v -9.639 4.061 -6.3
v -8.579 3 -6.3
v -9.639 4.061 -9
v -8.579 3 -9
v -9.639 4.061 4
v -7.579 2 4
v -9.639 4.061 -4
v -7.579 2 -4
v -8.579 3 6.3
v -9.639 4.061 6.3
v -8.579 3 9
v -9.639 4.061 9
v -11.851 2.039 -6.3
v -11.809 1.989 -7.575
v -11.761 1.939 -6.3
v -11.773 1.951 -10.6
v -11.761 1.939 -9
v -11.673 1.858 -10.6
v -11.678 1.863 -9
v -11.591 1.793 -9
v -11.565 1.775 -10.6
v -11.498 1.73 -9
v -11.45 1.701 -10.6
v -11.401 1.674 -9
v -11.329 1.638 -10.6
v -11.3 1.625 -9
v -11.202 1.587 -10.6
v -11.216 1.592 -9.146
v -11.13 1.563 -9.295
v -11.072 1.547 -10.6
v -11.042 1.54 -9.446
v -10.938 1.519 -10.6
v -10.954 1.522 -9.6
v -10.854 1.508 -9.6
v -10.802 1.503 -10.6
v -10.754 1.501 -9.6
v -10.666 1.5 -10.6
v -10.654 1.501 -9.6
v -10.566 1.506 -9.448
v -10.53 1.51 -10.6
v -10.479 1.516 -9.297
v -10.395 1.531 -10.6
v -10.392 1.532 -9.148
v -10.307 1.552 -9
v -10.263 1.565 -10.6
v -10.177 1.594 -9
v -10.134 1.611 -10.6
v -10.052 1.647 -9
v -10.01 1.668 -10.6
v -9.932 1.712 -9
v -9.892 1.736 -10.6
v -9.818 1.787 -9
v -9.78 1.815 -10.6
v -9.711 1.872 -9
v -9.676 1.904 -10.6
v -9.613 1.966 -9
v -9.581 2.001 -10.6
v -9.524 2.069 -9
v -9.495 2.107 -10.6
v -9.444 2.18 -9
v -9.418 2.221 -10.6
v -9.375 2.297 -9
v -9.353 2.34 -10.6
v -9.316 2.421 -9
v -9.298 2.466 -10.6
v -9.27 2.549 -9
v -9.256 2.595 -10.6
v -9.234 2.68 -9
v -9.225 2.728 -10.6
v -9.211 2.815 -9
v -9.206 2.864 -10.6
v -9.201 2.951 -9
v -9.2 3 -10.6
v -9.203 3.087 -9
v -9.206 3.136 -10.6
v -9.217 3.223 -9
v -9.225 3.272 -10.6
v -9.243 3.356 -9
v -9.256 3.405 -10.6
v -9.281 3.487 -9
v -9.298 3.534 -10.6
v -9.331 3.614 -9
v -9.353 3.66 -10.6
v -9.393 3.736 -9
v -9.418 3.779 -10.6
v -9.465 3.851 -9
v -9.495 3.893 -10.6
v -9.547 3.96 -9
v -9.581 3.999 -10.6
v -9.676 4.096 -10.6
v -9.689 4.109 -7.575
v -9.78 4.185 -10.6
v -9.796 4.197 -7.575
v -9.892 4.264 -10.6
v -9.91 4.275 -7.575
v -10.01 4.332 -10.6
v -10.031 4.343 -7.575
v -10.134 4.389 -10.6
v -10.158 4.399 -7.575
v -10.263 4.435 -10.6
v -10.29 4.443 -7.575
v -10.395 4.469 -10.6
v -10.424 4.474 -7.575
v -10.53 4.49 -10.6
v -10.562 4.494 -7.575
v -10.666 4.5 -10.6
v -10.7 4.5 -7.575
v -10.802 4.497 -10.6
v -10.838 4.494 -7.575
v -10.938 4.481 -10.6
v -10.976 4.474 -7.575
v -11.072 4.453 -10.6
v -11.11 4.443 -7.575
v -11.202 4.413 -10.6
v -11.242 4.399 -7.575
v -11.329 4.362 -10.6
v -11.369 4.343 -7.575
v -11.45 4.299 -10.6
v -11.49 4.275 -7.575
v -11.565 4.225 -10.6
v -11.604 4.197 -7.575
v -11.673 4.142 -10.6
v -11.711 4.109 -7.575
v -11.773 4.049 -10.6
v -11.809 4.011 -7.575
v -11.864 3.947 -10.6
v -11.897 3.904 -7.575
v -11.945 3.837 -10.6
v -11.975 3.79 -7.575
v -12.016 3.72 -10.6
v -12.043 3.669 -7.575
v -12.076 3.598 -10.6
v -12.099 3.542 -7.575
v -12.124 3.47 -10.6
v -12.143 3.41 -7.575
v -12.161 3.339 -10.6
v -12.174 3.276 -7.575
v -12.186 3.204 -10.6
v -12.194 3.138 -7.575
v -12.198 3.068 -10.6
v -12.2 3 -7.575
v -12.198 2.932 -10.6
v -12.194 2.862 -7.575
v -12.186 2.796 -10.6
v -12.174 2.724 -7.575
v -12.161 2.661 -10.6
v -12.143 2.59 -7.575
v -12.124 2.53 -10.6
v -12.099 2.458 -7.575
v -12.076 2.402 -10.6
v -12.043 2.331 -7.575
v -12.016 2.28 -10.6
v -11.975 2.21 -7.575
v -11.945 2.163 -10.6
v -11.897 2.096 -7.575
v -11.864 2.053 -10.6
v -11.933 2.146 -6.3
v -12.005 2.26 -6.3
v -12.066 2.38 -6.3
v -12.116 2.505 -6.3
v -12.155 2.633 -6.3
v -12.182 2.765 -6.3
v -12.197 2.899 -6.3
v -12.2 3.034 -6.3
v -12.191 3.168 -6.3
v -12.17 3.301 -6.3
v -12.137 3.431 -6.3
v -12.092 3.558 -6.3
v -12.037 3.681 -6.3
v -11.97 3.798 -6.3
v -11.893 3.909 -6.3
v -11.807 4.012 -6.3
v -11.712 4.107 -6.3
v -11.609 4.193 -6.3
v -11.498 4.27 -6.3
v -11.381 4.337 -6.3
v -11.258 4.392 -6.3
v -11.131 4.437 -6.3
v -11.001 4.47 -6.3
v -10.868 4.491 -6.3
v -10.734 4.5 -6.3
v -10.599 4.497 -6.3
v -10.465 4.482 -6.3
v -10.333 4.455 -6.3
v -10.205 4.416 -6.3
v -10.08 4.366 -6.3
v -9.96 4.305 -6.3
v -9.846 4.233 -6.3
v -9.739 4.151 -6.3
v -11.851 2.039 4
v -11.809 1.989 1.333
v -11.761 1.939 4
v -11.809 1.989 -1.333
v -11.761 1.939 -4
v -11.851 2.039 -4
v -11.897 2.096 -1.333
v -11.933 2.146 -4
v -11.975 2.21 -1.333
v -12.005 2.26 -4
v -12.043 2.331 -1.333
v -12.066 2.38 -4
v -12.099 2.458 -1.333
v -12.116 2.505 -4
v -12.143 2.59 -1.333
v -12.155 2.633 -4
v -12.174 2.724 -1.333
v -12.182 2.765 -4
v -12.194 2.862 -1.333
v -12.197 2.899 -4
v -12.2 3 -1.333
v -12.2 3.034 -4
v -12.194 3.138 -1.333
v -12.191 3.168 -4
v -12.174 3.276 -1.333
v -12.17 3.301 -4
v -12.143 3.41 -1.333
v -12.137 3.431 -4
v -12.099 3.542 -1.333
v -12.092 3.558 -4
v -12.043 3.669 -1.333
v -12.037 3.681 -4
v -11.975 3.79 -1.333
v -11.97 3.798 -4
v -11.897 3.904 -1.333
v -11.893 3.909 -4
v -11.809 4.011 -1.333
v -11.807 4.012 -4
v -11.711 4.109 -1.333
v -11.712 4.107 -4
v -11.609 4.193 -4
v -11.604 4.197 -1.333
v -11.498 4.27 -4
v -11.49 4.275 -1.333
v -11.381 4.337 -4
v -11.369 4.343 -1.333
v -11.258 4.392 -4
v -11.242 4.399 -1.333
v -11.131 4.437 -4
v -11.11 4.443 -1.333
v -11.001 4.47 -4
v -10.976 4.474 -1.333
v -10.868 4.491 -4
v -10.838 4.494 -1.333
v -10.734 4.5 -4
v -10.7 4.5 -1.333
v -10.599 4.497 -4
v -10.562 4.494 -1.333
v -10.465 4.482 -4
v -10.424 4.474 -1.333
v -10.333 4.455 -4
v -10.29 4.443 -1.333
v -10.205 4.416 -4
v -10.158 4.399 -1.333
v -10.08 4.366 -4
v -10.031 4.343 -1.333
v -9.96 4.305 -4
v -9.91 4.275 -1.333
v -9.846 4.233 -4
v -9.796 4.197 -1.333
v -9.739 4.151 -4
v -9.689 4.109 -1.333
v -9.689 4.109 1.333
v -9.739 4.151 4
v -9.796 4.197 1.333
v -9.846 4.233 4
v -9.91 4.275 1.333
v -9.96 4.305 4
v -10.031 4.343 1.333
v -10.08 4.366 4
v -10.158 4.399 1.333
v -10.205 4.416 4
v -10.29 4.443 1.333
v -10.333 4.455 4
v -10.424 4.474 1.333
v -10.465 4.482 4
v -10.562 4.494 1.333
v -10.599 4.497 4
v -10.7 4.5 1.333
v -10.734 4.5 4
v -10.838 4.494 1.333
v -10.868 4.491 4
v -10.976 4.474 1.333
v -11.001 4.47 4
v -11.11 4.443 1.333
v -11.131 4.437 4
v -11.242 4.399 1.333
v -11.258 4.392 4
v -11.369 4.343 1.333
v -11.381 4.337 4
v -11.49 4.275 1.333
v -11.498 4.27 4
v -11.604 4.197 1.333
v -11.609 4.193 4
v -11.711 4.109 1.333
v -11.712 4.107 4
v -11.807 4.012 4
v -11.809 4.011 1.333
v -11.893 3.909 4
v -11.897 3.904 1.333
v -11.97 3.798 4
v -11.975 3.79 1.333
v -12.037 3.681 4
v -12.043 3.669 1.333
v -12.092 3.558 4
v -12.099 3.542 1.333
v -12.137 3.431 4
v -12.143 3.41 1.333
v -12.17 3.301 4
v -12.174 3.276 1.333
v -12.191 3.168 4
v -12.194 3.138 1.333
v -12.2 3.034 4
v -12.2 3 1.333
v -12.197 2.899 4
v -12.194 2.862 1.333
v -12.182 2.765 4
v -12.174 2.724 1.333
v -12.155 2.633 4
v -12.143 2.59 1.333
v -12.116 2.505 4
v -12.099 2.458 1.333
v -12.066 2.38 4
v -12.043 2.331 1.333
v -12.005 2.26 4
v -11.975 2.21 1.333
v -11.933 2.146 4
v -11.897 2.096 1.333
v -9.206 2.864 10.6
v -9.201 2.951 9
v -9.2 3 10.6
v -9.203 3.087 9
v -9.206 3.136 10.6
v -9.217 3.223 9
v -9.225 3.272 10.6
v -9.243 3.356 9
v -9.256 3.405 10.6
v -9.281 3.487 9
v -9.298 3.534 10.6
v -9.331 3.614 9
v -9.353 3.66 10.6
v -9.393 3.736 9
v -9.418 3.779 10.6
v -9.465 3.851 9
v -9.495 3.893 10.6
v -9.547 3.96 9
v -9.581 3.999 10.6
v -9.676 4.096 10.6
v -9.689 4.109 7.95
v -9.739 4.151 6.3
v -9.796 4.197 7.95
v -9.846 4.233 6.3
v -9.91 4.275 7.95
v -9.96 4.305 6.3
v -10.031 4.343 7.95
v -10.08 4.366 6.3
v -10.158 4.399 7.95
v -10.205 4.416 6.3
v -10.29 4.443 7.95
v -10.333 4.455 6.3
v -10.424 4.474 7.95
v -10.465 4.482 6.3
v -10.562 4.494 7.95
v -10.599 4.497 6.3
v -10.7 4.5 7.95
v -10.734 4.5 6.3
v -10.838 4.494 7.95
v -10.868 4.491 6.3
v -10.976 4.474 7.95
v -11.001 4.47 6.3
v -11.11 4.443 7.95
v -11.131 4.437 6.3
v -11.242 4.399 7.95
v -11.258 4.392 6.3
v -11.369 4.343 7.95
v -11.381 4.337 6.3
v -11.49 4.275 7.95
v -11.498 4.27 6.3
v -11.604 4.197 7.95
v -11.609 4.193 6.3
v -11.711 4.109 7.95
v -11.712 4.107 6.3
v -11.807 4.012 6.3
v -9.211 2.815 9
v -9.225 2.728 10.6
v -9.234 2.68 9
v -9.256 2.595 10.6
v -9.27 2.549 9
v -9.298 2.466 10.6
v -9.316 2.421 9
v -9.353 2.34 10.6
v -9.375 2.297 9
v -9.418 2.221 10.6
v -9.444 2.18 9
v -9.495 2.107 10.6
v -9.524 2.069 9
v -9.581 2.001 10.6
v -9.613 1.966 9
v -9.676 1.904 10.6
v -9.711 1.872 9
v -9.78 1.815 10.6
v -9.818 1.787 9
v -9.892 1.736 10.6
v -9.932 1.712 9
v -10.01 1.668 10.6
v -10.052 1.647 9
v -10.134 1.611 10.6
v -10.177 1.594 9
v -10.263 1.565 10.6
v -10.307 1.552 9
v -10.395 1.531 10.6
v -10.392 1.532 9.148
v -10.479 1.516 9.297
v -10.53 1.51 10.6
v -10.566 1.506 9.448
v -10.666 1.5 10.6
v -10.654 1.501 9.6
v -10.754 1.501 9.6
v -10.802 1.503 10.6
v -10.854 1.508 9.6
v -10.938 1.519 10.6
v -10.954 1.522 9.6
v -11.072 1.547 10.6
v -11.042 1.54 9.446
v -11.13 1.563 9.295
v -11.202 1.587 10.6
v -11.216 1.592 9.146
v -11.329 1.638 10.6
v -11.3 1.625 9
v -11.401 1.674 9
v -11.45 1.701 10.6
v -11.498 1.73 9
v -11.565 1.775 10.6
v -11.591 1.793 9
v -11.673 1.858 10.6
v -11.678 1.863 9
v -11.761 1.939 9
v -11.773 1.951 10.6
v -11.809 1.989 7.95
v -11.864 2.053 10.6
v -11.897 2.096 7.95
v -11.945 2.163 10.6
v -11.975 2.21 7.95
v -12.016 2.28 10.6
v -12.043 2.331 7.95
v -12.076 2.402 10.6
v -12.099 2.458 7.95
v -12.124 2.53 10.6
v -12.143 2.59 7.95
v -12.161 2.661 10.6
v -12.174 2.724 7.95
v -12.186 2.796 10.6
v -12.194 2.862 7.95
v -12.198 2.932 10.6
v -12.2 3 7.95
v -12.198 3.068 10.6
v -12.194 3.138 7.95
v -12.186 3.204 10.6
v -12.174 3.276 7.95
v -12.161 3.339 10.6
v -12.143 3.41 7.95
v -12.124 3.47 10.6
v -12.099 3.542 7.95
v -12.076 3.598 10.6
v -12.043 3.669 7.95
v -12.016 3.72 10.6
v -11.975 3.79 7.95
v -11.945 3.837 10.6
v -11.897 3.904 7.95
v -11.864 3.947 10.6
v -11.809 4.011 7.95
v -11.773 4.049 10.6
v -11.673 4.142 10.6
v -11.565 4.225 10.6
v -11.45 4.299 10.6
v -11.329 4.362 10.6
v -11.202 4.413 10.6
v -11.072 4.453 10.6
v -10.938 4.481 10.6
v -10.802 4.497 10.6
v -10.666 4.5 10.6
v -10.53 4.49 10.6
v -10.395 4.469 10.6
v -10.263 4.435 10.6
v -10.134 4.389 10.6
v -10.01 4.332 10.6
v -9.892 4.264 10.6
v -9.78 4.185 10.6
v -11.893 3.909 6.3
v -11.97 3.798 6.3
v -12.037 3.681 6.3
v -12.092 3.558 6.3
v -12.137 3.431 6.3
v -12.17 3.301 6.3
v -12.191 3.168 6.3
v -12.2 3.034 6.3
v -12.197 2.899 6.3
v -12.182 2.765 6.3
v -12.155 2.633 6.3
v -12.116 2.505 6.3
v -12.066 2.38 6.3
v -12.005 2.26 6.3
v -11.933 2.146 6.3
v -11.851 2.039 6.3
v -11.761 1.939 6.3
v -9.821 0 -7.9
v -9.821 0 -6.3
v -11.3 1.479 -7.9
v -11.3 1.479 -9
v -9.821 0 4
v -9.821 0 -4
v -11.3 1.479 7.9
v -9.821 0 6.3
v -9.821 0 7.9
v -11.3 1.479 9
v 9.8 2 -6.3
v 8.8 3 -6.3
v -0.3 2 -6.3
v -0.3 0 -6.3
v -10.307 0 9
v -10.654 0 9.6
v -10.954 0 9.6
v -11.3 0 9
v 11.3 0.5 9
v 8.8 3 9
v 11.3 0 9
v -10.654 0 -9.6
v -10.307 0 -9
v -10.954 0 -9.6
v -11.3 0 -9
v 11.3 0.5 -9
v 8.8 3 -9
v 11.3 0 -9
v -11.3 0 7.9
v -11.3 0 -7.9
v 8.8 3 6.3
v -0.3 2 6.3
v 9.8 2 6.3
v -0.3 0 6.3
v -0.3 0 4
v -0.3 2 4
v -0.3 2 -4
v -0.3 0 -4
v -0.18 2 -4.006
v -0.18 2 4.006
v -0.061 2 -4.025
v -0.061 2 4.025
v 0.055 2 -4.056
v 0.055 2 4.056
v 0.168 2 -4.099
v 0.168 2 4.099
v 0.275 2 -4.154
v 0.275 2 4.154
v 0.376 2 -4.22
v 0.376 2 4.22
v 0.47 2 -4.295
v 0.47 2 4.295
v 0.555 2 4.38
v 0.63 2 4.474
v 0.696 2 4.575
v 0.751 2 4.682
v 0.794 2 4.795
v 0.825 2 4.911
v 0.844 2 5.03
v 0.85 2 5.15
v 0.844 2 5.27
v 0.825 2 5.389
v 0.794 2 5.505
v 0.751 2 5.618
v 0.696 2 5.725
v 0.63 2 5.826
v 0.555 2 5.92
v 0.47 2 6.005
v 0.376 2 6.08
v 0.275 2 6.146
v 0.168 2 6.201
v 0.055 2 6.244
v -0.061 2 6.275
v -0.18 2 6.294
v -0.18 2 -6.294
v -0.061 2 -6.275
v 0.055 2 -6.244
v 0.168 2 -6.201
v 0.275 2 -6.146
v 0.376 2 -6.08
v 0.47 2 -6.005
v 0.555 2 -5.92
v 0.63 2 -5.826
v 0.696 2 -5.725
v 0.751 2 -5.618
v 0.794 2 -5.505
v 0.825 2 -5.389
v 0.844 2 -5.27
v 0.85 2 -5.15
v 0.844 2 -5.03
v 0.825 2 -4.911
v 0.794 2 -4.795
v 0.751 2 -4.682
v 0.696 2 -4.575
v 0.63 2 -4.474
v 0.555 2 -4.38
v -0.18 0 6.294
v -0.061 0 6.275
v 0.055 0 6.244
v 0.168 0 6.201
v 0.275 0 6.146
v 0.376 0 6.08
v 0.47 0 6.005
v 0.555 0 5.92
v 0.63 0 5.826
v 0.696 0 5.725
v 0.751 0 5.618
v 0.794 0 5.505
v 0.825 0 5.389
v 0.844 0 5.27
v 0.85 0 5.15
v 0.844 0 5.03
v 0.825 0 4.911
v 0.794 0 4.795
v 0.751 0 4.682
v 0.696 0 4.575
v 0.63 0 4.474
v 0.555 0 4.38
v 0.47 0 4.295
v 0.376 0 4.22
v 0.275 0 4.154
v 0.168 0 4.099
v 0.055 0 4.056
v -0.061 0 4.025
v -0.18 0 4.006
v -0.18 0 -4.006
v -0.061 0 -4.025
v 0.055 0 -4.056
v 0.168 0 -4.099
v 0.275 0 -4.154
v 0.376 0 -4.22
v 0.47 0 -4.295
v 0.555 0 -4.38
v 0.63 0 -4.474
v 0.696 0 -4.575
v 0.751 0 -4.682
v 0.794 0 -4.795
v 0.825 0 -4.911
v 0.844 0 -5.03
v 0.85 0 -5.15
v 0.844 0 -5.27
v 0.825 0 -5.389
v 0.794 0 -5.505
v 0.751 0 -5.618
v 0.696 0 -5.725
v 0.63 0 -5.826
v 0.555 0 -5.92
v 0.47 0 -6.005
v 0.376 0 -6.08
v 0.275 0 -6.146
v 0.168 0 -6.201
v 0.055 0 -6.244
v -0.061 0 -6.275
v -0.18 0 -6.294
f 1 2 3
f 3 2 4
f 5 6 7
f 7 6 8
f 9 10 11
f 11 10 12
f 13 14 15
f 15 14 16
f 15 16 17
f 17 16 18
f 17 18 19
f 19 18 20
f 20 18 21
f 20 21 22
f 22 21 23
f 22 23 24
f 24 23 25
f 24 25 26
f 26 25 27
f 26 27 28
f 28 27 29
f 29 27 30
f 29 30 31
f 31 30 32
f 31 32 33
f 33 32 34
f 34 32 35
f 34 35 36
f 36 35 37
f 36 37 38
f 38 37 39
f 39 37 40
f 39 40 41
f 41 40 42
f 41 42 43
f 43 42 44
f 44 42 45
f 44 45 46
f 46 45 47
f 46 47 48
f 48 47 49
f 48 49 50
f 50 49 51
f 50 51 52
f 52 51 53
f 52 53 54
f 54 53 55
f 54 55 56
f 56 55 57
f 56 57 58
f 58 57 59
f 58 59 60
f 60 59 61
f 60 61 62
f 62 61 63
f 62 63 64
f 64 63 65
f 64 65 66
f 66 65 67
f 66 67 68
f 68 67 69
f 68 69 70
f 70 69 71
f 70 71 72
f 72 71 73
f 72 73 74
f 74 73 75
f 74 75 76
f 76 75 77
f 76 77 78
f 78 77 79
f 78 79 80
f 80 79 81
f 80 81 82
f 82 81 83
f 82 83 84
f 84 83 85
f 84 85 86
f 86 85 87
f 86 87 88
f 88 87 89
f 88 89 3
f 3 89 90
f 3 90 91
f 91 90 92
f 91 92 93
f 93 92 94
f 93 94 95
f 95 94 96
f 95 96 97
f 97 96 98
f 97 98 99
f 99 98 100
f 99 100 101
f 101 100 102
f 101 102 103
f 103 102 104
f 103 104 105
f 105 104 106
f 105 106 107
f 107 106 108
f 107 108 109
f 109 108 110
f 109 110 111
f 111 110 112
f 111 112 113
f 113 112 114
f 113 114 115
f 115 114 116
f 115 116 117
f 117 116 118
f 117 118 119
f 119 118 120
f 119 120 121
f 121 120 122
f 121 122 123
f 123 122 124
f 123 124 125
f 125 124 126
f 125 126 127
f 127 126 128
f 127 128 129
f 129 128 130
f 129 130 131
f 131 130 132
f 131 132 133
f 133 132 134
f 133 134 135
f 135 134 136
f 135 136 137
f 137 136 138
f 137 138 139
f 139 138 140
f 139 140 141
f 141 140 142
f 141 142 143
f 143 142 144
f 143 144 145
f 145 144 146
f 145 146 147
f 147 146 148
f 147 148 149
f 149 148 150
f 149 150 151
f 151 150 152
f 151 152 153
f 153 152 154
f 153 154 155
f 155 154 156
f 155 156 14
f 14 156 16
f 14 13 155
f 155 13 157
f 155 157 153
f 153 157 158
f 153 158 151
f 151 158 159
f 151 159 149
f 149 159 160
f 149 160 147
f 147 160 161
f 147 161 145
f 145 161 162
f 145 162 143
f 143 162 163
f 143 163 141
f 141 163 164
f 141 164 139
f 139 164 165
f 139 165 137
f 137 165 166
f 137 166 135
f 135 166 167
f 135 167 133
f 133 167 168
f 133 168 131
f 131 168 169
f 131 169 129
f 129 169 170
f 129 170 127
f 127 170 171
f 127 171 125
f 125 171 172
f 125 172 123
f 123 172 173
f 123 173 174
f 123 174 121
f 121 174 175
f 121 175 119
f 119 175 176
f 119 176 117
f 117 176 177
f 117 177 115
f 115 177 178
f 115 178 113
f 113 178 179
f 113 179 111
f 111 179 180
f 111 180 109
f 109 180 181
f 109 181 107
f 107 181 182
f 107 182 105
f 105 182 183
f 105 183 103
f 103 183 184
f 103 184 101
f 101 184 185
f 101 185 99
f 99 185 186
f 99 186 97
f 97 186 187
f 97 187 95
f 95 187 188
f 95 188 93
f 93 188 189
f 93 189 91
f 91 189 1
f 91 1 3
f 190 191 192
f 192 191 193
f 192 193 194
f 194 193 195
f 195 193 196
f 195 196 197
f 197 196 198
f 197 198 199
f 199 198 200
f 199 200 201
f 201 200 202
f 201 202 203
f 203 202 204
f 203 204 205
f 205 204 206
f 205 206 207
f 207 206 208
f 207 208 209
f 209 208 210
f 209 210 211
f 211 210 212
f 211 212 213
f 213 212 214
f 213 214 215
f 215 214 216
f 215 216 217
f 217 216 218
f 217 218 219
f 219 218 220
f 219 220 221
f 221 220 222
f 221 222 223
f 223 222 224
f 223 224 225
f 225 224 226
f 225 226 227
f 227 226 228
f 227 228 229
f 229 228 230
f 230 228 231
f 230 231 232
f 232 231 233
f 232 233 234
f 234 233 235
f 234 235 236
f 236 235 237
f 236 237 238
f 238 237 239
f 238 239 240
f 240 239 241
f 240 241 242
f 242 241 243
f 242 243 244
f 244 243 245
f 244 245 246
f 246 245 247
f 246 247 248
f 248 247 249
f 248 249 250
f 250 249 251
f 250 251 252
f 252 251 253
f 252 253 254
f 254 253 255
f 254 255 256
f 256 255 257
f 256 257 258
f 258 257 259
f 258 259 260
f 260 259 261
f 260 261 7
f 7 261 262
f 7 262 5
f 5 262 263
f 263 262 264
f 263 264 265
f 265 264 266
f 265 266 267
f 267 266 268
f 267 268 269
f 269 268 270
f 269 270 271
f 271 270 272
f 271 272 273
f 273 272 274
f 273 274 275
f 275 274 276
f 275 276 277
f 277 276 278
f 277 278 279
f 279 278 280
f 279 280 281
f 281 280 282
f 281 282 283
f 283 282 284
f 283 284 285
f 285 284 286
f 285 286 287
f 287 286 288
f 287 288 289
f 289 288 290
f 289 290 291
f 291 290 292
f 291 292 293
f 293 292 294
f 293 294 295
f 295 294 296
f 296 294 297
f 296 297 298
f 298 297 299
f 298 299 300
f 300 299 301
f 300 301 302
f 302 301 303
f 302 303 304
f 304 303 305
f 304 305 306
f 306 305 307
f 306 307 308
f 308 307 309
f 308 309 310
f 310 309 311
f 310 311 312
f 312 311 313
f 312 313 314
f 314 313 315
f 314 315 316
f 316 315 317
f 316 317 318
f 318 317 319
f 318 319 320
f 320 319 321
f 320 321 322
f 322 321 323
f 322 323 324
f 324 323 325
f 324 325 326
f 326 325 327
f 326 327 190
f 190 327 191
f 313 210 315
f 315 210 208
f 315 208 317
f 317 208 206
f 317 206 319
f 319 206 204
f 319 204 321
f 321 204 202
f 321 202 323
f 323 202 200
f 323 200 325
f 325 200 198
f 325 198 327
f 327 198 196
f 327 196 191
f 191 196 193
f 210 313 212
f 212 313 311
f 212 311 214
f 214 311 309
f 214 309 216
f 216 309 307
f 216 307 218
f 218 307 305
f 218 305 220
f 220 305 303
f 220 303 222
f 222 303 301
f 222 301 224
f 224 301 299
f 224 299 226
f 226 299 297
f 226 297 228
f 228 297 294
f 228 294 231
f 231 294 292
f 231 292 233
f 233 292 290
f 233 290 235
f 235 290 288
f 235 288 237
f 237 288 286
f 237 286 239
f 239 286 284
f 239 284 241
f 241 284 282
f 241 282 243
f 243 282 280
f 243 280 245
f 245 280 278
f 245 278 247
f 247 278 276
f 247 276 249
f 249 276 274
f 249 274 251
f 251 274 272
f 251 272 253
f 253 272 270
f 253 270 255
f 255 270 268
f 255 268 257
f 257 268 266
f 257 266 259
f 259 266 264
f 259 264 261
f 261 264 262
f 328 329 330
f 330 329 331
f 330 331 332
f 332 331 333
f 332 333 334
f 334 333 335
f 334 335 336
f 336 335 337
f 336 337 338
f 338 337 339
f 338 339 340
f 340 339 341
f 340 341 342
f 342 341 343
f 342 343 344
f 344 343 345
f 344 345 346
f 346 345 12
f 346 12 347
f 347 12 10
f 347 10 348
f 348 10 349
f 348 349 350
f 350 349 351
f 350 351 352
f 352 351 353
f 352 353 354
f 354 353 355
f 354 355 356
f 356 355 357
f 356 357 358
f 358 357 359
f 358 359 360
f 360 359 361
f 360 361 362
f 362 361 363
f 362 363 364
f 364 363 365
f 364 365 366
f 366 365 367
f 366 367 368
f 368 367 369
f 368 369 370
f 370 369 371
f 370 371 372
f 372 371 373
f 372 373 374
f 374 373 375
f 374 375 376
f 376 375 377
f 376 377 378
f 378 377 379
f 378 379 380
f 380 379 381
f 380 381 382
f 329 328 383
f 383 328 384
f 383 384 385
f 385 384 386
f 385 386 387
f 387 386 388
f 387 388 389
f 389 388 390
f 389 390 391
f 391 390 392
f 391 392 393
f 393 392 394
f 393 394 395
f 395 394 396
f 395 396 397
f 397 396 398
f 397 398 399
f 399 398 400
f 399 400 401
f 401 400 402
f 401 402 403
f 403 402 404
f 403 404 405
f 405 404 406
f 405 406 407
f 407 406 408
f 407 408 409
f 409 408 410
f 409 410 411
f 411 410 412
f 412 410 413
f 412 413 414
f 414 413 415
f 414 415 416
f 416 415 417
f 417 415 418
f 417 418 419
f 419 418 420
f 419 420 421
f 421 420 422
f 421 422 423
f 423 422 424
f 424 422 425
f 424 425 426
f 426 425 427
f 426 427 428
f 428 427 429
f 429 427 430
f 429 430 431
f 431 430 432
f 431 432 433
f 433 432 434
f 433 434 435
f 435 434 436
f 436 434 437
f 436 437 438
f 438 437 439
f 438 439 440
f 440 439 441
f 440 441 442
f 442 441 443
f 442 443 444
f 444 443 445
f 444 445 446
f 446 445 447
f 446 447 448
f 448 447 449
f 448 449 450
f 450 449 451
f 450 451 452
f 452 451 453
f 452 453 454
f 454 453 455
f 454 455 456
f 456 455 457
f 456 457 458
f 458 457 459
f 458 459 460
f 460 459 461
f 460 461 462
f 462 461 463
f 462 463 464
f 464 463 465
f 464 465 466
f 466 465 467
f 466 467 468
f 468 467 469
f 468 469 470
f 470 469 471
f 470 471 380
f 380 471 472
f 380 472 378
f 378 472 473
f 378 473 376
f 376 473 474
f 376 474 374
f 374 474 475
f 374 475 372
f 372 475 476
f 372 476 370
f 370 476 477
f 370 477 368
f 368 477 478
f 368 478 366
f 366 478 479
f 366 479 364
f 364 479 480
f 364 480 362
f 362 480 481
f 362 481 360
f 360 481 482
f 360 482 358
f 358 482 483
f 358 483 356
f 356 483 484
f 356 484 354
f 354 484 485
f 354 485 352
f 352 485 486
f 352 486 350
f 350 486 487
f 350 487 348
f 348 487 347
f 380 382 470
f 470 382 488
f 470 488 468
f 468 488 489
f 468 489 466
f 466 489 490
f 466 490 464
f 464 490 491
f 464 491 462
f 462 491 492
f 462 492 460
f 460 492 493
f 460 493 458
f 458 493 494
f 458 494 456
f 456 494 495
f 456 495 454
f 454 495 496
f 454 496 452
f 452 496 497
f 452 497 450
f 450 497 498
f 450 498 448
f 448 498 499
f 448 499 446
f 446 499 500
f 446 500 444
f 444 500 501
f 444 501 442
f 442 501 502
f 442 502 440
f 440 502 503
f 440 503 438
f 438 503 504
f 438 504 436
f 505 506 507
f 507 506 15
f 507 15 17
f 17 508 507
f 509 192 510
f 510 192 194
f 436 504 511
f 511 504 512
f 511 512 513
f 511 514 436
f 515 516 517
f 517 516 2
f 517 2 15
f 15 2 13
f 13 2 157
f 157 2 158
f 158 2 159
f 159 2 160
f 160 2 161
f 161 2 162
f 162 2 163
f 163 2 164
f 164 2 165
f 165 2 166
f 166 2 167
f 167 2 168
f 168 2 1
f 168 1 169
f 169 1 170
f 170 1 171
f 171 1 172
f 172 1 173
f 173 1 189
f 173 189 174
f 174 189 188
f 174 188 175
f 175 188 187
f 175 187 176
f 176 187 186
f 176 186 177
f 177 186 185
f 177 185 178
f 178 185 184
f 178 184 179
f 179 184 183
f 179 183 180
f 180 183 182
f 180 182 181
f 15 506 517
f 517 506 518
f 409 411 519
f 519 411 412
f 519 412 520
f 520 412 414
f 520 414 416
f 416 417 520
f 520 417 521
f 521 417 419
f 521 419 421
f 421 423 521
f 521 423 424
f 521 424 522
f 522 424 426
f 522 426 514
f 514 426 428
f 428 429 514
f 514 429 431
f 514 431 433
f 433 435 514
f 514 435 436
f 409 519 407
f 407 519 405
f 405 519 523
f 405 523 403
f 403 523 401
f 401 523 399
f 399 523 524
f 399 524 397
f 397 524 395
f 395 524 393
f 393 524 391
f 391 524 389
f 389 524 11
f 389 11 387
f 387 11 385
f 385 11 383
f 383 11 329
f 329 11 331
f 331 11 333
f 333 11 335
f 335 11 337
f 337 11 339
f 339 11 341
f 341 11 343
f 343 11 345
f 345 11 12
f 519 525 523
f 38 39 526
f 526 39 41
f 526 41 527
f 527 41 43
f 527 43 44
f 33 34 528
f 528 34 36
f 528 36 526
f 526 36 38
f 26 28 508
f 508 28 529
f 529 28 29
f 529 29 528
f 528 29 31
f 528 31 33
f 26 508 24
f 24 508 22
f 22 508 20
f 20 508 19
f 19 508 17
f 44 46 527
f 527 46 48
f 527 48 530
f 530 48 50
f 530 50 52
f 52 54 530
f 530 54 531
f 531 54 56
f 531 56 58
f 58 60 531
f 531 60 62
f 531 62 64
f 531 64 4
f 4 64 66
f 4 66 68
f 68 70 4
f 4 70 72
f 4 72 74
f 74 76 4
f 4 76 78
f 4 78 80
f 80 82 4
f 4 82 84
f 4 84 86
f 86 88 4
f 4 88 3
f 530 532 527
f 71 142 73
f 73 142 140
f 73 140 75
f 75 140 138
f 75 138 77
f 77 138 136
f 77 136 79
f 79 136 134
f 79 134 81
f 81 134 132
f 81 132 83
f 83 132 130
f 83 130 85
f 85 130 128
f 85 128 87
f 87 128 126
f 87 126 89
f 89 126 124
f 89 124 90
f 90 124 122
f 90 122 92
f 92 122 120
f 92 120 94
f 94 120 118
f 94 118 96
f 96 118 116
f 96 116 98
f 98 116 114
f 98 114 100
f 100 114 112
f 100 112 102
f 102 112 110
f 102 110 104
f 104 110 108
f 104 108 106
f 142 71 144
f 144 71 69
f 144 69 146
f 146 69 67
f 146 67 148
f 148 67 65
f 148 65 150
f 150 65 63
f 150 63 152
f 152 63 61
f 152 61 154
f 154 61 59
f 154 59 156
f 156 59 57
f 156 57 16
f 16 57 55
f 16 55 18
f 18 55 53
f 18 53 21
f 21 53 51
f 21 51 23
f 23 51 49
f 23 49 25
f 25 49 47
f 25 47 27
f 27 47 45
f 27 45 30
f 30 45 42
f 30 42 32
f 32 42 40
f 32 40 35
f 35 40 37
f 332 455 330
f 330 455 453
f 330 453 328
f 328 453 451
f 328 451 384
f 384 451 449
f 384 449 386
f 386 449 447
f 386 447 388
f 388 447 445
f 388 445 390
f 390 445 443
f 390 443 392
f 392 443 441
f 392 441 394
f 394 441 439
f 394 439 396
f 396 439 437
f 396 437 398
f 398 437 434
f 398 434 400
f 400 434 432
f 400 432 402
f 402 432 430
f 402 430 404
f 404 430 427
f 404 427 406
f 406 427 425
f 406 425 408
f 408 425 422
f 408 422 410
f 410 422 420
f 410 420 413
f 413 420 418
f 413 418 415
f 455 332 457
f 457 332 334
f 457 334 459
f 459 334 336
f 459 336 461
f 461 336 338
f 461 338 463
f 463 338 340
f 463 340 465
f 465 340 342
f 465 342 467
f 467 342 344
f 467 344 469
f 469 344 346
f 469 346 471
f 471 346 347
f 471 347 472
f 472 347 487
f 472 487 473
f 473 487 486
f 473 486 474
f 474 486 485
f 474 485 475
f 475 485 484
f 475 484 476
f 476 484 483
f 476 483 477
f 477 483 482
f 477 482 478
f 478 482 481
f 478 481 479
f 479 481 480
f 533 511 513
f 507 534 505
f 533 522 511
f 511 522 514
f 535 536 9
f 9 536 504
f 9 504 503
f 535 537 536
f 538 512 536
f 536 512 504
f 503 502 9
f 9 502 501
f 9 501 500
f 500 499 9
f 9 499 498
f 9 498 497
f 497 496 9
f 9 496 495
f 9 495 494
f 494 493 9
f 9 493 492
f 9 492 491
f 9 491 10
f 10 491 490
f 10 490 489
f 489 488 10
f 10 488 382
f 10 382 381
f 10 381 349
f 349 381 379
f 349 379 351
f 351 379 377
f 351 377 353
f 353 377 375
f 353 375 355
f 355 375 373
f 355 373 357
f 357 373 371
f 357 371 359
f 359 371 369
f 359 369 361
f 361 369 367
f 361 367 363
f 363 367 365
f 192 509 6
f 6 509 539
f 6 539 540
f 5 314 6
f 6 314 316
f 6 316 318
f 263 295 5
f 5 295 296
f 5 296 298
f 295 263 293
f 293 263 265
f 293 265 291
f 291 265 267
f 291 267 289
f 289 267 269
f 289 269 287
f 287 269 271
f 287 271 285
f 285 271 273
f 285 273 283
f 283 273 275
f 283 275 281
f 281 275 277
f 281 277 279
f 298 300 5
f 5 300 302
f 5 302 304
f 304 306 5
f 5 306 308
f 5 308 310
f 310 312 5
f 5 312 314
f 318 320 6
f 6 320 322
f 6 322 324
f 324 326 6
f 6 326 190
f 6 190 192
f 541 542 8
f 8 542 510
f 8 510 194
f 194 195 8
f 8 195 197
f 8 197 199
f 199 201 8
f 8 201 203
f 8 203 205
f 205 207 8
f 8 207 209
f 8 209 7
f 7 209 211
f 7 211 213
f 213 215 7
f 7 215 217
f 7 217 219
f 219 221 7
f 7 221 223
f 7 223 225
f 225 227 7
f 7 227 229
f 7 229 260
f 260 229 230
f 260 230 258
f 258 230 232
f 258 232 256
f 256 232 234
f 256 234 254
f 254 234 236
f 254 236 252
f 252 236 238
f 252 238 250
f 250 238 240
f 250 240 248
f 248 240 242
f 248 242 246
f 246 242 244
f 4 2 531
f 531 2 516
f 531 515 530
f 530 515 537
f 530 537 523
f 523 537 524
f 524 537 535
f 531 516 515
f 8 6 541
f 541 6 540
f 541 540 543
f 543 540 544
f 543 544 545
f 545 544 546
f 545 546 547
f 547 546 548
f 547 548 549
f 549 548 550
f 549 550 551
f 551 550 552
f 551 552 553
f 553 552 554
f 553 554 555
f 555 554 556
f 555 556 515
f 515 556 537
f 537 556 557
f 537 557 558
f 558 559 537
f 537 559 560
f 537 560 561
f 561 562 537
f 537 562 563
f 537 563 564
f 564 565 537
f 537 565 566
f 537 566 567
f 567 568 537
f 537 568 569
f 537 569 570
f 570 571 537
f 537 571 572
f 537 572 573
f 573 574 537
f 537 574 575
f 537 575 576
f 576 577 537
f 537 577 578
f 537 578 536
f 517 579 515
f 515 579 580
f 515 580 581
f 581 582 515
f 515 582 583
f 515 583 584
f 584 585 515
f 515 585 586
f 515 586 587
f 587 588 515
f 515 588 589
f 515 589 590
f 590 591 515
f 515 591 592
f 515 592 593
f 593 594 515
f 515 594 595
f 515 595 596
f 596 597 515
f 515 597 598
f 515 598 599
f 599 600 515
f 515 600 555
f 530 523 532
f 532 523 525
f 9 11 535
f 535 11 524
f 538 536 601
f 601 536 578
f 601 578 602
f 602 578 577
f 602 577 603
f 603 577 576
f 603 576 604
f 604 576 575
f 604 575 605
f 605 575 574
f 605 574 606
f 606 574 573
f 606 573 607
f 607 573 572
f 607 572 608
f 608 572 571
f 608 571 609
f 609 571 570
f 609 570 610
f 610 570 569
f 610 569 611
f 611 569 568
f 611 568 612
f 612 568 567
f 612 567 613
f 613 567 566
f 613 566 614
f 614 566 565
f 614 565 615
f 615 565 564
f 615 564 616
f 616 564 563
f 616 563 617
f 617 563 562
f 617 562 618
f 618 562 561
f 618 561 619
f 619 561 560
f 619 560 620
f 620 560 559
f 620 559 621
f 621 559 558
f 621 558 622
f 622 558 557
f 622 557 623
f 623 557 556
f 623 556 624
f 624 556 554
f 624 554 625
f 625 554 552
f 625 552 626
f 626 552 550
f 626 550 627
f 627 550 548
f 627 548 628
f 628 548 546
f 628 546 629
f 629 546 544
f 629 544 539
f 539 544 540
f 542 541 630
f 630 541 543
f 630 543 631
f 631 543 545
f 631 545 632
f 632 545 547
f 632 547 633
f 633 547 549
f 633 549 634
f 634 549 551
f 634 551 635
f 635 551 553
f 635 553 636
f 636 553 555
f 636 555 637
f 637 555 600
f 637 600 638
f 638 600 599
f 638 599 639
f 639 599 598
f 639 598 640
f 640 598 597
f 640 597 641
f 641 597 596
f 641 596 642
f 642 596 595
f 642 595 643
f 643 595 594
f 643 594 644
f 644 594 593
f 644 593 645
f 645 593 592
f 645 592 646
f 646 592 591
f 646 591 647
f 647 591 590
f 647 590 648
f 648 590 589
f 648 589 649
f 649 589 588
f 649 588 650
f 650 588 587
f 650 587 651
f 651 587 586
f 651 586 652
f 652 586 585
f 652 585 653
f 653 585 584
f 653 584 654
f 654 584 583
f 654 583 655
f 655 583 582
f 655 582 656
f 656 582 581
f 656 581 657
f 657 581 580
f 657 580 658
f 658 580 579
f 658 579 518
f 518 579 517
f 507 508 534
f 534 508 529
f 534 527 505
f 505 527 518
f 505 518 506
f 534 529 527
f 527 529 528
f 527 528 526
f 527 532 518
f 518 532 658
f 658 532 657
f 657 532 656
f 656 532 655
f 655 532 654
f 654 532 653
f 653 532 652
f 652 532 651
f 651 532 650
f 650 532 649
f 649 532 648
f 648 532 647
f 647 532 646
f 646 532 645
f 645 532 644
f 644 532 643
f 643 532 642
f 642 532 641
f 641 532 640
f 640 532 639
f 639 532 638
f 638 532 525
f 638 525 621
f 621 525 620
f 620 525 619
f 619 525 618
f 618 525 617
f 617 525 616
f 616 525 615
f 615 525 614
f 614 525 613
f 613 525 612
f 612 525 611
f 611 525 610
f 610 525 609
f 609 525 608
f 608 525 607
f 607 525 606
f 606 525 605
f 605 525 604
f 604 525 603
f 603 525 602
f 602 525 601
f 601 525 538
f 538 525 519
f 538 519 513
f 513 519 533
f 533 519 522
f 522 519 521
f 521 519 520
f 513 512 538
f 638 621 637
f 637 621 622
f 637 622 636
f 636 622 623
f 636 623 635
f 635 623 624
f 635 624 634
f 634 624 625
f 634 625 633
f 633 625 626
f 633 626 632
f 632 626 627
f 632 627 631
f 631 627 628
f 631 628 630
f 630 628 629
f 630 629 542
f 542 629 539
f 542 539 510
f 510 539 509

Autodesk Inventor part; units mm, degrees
ref_plane "YZ Plane" through (0, 0, 0) normal (1, 0, 0) x (0, 1, 0)
ref_plane "XZ Plane" through (0, 0, 0) normal (0, 1, 0) x (-1, 0, 0)
ref_plane "XY Plane" through (0, 0, 0) normal (0, 0, 1) x (1, 0, 0)
sketch "Sketch3" plane through (0, 0, 0) normal (0, 1, 0) x (-1, 0, 0)
  line L0 (11.3, 9) -> (-11.3, 9)
  line L1 (-11.3, 9) -> (-11.3, -9)
  line L2 (-11.3, -9) -> (11.3, -9)
  line L3 (11.3, -9) -> (11.3, 9)
  line L4 (11.3, 9) -> (-11.3, -9) construction
  line L5 (-11.3, 9) -> (11.3, -9) construction
  line L6 (11.3, 5.15) -> (0.3, 5.15) construction
  line L7 (11.3, 6.3) -> (0.3, 6.3)
  line L8 (0.3, 4) -> (11.3, 4)
  arc A0 (11.3, 4) -> (11.3, 6.3) centre (11.3, 5.15) ccw
  arc A1 (0.3, 6.3) -> (0.3, 4) centre (0.3, 5.15) ccw
  line L9 (11.3, -5.15) -> (0.3, -5.15) construction
  line L10 (11.3, -4) -> (0.3, -4)
  line L11 (0.3, -6.3) -> (11.3, -6.3)
  arc A2 (11.3, -6.3) -> (11.3, -4) centre (11.3, -5.15) ccw
  arc A3 (0.3, -4) -> (0.3, -6.3) centre (0.3, -5.15) ccw
  point P0 (0, 0)
  point P1 (5.8, 5.15)
  point P2 (5.8, -5.15)
  dimension "d4" = 18
  dimension "d5" = 22.6
  dimension "d6" = 11
  dimension "d7" = 11
  dimension "d8" = 2.3
  dimension "d9" = 2.3
  dimension "d10" = 12.6
  dimension "d11" = 6.3
extrude "Extrusion3" add sketch "Sketch3" along normal blind 3 contours L3 L7 A1 L8 L10 A3 L11 L2 L1 L0
sketch "Sketch4" plane through (-11.3, 0, -4) normal (-1, 0, 0) x (0, 0, 1)
  line L0 (-2.3, 3) -> (0, 3) projected
  line L1 (10.3, 0) -> (10.3, 3) projected
  line L2 (-2.3, 3) -> (10.3, 3)
  line L3 (10.3, 3) -> (10.3, 2)
  line L4 (10.3, 2) -> (-2.3, 2)
  line L5 (-2.3, 2) -> (-2.3, 3)
  point P0 (4, 0)
  dimension "d14" = 1
extrude "Extrusion4" cut sketch "Sketch4" against normal blind 30
chamfer "Chamfer1" distance 2.5 angle 45 1 edges at (11.3, 3, -7.65)
sketch "Sketch5" plane through (0, 0, 0) normal (0, 0, 1) x (1, 0, 0)
  circle A0 centre (-10.7, 3) radius 1.5
  line L0 (11.3, 0) -> (11.3, 0.5) projected
  line L1 (-11.7607, 1.9393) -> (-9.8213, 0)
  line L2 (-11.3, 0) -> (11.3, 0) projected
  line L3 (-9.6393, 4.0607) -> (-7.5787, 2)
  line L4 (-0.3, 2) -> (-11.3, 2) projected
  line L5 (-7.5787, 2) -> (-9.8213, 0)
  point P0 (0, 0)
  point P1 (-9.582, 2)
  dimension "d20" = 3
  dimension "d21" = 3
  dimension "d22" = 22
  dimension "d23" = 135
  dimension "d24" = 135
extrude "Extrusion5" add sketch "Sketch5" along normal mid plane 18
sketch "Sketch6" plane through (-11.7607, 1.9393, 9) normal (-0.7071, -0.7071, 0) x (-0.7071, 0.7071, 0)
  line L0 (6.2129, 16.9) -> (-25.5876, 16.9)
  line L1 (-25.5876, 16.9) -> (-25.5876, 1.1)
  line L2 (-25.5876, 1.1) -> (6.2129, 1.1)
  line L3 (6.2129, 1.1) -> (6.2129, 16.9)
  line L4 (6.2129, 16.9) -> (-25.5876, 1.1) construction
  line L5 (-25.5876, 16.9) -> (6.2129, 1.1) construction
  point P0 (-9.6874, 9)
  dimension "d27" = 15.8
extrude "Extrusion6" cut sketch "Sketch6" along normal blind 10
extrude "Extrusion7" add sketch "Sketch5" along normal mid plane 21.2 contours A0
sketch "Sketch7" plane through (0, 0, 0) normal (0, -1, 0) x (1, 0, 0)
  line L0 (-11.3, -9) -> (-11.7607, -9) projected
  line L1 (-11.3, -9) -> (-10.9536, -9.6)
  line L2 (-10.9536, -9.6) -> (-10.6536, -9.6)
  line L3 (-10.6536, -9.6) -> (-10.3072, -9)
  line L4 (-9.2, -9) -> (-11.7607, -9) projected
  point P0 (0, 0)
  point P1 (-9.6393, -9)
  dimension "d32" = 9.6
  dimension "d33" = 60
  dimension "d34" = 60
  dimension "d35" = 0.3
extrude "Extrusion8" add sketch "Sketch7" against normal up to next
mirror "Mirror1" about plane through (0, 0, 0) normal (0, 0, 1) of "Extrusion8"
sketch "Sketch8" plane through (0, 0, 0) normal (0, -1, 0) x (1, 0, 0)
  line L0 (-9.8213, -6.3) -> (-0.3, -6.3) projected
  line L1 (-0.3, -6.3) -> (-24.4848, -6.3)
  line L2 (-24.4848, -6.3) -> (-24.4848, -4)
  line L3 (-24.4848, -4) -> (-0.3, -4)
  line L4 (-0.3, -4) -> (-0.3, -6.3)
  line L5 (-0.3, 4) -> (-7.5787, 4) projected
  line L6 (-0.3, 4) -> (-23.0411, 4)
  line L7 (-23.0411, 4) -> (-23.0411, 6.3)
  line L8 (-23.0411, 6.3) -> (-0.3, 6.3)
  line L9 (-0.3, 6.3) -> (-0.3, 4)
  line L10 (-0.3, -4) -> (-9.8213, -4) projected
  line L11 (-0.3, 6.3) -> (-9.8213, 6.3) projected
  point P0 (0, 0)
extrude "Extrusion9" cut sketch "Sketch8" against normal blind 10
equation "\"d7\" = d6"
equation "\"d9\" = d8"
equation "\"d11\" = 0.5 * d10"
